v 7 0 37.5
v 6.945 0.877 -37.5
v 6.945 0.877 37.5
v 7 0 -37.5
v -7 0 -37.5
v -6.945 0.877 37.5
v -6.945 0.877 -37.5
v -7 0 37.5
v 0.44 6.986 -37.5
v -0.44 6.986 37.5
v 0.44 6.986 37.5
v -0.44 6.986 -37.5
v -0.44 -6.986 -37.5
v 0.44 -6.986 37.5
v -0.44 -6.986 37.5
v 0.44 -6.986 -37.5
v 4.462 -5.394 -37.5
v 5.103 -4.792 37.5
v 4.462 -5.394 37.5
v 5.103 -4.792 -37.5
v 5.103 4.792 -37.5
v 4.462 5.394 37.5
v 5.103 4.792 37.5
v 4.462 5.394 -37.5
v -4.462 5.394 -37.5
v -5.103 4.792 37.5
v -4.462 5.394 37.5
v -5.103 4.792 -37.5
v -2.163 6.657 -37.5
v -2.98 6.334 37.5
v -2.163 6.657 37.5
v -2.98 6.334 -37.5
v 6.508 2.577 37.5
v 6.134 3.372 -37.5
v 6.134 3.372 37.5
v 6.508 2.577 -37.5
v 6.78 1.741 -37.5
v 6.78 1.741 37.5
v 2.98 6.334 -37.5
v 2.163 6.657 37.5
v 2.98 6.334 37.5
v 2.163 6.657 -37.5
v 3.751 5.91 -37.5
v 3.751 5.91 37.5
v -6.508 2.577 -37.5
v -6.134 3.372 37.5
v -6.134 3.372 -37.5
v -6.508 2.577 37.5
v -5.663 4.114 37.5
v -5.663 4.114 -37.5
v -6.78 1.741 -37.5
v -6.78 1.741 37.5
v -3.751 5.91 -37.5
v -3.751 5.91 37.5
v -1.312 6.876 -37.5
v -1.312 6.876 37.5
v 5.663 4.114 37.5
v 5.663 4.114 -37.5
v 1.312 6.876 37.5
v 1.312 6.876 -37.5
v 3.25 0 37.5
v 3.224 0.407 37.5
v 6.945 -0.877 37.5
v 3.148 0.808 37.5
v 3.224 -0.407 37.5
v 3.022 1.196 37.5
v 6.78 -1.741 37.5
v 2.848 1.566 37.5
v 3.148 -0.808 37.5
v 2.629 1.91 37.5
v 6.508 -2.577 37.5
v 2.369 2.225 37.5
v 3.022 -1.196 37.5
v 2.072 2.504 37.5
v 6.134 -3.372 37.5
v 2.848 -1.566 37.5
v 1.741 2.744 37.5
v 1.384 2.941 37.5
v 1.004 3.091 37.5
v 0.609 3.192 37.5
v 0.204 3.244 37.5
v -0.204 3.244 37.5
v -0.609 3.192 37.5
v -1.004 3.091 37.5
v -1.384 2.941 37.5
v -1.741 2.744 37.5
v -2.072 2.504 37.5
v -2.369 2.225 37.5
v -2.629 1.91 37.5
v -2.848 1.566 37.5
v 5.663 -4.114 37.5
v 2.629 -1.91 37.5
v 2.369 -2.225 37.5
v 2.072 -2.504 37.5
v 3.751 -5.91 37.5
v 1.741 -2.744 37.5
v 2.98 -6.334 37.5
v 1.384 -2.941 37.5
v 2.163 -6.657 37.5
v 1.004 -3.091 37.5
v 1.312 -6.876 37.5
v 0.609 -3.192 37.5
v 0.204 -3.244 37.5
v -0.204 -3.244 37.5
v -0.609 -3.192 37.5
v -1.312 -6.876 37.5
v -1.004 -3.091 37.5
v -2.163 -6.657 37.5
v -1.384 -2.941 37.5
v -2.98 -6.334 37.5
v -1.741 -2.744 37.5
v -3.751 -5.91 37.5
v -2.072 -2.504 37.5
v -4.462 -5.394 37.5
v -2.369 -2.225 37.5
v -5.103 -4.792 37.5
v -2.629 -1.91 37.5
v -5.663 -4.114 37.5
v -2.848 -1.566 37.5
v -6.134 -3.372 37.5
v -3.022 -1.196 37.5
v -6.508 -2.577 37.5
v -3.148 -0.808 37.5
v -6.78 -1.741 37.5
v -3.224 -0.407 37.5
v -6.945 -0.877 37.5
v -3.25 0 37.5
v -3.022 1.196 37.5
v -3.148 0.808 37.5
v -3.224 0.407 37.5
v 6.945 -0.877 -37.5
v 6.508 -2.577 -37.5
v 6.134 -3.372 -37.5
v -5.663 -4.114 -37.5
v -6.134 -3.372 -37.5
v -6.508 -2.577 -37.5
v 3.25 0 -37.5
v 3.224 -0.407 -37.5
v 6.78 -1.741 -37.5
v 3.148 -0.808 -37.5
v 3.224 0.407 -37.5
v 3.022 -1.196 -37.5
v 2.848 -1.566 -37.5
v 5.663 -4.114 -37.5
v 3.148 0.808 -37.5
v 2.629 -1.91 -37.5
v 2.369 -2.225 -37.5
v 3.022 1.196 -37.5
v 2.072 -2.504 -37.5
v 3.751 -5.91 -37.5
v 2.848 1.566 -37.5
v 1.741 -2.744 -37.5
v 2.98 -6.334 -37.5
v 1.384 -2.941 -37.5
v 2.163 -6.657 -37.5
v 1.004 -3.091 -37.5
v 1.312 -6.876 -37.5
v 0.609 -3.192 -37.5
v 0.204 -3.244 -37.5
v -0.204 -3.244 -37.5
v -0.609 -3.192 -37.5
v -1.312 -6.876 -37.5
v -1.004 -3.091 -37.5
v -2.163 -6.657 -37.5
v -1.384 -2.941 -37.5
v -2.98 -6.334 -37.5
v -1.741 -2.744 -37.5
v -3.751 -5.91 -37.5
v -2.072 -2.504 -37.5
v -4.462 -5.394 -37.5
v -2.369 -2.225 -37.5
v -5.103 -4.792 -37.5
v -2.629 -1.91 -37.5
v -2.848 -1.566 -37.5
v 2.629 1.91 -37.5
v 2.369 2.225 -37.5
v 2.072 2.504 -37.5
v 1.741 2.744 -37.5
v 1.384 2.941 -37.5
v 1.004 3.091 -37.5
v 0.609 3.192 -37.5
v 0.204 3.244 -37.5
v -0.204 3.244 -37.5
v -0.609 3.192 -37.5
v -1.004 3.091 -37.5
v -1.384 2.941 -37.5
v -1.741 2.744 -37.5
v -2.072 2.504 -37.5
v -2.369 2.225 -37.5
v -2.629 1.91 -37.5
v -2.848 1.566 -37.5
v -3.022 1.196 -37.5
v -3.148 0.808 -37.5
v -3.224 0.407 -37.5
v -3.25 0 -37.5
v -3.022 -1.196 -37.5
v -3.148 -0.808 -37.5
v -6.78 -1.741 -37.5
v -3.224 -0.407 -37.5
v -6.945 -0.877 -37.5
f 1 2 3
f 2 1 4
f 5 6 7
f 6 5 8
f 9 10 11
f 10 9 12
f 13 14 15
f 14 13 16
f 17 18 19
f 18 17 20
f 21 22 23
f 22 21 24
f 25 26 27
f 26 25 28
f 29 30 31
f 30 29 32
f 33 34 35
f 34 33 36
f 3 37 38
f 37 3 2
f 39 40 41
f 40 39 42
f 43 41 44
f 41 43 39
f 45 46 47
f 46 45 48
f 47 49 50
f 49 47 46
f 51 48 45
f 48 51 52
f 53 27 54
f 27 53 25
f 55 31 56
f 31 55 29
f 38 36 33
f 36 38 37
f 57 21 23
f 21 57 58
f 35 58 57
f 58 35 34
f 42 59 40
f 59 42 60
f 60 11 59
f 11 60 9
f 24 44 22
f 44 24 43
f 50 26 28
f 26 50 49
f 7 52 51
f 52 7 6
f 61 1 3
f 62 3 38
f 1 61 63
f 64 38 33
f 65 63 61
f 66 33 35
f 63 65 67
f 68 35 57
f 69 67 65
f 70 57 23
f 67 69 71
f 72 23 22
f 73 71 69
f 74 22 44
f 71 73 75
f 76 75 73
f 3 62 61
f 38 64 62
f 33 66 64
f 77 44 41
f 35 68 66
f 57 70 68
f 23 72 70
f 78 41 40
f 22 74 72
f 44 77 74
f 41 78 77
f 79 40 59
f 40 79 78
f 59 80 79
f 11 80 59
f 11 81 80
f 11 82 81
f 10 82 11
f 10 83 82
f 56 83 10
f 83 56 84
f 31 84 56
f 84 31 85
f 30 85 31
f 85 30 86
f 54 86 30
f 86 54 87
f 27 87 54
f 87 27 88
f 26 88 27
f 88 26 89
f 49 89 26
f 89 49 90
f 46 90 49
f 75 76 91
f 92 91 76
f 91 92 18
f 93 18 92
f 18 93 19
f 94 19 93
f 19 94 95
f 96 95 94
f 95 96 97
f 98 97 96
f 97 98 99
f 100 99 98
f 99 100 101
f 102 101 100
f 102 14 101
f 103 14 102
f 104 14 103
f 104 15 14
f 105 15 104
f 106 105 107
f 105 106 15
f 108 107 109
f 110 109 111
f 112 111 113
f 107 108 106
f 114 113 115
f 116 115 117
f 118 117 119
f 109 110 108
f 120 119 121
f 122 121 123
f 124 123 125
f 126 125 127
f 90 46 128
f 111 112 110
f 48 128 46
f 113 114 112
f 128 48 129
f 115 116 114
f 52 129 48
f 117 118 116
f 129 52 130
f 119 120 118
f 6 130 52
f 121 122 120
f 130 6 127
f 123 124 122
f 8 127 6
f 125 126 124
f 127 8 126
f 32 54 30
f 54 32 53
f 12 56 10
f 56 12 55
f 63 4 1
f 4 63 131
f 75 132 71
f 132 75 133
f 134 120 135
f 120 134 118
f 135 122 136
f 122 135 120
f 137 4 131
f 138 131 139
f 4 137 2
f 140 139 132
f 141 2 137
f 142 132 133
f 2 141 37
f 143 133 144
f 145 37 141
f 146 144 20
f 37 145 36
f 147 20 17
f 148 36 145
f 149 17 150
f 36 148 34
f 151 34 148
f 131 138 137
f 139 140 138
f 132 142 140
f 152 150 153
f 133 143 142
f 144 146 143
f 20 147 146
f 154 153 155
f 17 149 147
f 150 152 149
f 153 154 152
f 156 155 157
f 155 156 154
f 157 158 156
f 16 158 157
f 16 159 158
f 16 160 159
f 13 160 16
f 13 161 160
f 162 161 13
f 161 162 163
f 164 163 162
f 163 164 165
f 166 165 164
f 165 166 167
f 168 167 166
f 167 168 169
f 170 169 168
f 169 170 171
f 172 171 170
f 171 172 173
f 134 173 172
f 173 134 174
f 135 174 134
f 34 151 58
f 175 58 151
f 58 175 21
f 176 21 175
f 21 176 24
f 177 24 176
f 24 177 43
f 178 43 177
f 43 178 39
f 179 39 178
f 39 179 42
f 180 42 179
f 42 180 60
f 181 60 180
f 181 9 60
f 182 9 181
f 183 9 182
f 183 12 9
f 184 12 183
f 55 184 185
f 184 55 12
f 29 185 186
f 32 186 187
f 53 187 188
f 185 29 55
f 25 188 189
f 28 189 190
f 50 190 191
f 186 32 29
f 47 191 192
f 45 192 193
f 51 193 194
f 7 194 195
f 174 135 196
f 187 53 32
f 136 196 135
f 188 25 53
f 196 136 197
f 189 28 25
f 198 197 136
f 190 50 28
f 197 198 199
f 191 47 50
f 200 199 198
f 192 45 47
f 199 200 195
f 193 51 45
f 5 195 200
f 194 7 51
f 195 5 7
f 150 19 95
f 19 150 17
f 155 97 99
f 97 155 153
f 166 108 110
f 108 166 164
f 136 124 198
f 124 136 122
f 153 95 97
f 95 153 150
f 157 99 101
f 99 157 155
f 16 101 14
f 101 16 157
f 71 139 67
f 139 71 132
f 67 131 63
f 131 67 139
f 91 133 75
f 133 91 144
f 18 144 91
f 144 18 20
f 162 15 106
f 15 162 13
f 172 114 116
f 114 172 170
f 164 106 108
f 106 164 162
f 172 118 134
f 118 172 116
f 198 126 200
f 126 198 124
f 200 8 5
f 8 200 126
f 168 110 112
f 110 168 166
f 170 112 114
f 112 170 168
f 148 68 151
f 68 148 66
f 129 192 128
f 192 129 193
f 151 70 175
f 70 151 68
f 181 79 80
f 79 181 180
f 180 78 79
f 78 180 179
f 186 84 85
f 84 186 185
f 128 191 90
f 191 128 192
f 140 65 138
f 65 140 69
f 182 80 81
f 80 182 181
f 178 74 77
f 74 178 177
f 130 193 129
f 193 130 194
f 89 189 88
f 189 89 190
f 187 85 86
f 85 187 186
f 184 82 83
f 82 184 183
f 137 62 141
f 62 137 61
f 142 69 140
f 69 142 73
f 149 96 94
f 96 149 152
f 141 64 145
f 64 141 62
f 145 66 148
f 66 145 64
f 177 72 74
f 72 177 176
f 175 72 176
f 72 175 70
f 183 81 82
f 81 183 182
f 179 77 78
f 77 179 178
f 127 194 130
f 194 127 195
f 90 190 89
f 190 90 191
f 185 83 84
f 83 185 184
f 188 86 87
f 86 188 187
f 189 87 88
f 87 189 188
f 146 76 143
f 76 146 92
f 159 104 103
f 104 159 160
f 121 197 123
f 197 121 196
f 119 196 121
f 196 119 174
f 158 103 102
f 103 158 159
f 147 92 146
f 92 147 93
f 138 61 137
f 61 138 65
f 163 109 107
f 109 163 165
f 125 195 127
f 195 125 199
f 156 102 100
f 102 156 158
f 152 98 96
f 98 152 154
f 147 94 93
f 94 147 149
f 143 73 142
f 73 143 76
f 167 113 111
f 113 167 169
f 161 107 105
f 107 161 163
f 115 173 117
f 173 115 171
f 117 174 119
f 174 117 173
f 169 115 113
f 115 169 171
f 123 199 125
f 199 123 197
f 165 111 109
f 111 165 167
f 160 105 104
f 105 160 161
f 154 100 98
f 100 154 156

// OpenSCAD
$fn = 50;


difference() {
	union() {
		translate(v = [0, 0, -37.5000000000]) {
			cylinder(h = 75, r = 7.0000000000);
		}
	}
	union() {
		translate(v = [0, 0, -100.0000000000]) {
			cylinder(h = 200, r = 3.2500000000);
		}
	}
}
